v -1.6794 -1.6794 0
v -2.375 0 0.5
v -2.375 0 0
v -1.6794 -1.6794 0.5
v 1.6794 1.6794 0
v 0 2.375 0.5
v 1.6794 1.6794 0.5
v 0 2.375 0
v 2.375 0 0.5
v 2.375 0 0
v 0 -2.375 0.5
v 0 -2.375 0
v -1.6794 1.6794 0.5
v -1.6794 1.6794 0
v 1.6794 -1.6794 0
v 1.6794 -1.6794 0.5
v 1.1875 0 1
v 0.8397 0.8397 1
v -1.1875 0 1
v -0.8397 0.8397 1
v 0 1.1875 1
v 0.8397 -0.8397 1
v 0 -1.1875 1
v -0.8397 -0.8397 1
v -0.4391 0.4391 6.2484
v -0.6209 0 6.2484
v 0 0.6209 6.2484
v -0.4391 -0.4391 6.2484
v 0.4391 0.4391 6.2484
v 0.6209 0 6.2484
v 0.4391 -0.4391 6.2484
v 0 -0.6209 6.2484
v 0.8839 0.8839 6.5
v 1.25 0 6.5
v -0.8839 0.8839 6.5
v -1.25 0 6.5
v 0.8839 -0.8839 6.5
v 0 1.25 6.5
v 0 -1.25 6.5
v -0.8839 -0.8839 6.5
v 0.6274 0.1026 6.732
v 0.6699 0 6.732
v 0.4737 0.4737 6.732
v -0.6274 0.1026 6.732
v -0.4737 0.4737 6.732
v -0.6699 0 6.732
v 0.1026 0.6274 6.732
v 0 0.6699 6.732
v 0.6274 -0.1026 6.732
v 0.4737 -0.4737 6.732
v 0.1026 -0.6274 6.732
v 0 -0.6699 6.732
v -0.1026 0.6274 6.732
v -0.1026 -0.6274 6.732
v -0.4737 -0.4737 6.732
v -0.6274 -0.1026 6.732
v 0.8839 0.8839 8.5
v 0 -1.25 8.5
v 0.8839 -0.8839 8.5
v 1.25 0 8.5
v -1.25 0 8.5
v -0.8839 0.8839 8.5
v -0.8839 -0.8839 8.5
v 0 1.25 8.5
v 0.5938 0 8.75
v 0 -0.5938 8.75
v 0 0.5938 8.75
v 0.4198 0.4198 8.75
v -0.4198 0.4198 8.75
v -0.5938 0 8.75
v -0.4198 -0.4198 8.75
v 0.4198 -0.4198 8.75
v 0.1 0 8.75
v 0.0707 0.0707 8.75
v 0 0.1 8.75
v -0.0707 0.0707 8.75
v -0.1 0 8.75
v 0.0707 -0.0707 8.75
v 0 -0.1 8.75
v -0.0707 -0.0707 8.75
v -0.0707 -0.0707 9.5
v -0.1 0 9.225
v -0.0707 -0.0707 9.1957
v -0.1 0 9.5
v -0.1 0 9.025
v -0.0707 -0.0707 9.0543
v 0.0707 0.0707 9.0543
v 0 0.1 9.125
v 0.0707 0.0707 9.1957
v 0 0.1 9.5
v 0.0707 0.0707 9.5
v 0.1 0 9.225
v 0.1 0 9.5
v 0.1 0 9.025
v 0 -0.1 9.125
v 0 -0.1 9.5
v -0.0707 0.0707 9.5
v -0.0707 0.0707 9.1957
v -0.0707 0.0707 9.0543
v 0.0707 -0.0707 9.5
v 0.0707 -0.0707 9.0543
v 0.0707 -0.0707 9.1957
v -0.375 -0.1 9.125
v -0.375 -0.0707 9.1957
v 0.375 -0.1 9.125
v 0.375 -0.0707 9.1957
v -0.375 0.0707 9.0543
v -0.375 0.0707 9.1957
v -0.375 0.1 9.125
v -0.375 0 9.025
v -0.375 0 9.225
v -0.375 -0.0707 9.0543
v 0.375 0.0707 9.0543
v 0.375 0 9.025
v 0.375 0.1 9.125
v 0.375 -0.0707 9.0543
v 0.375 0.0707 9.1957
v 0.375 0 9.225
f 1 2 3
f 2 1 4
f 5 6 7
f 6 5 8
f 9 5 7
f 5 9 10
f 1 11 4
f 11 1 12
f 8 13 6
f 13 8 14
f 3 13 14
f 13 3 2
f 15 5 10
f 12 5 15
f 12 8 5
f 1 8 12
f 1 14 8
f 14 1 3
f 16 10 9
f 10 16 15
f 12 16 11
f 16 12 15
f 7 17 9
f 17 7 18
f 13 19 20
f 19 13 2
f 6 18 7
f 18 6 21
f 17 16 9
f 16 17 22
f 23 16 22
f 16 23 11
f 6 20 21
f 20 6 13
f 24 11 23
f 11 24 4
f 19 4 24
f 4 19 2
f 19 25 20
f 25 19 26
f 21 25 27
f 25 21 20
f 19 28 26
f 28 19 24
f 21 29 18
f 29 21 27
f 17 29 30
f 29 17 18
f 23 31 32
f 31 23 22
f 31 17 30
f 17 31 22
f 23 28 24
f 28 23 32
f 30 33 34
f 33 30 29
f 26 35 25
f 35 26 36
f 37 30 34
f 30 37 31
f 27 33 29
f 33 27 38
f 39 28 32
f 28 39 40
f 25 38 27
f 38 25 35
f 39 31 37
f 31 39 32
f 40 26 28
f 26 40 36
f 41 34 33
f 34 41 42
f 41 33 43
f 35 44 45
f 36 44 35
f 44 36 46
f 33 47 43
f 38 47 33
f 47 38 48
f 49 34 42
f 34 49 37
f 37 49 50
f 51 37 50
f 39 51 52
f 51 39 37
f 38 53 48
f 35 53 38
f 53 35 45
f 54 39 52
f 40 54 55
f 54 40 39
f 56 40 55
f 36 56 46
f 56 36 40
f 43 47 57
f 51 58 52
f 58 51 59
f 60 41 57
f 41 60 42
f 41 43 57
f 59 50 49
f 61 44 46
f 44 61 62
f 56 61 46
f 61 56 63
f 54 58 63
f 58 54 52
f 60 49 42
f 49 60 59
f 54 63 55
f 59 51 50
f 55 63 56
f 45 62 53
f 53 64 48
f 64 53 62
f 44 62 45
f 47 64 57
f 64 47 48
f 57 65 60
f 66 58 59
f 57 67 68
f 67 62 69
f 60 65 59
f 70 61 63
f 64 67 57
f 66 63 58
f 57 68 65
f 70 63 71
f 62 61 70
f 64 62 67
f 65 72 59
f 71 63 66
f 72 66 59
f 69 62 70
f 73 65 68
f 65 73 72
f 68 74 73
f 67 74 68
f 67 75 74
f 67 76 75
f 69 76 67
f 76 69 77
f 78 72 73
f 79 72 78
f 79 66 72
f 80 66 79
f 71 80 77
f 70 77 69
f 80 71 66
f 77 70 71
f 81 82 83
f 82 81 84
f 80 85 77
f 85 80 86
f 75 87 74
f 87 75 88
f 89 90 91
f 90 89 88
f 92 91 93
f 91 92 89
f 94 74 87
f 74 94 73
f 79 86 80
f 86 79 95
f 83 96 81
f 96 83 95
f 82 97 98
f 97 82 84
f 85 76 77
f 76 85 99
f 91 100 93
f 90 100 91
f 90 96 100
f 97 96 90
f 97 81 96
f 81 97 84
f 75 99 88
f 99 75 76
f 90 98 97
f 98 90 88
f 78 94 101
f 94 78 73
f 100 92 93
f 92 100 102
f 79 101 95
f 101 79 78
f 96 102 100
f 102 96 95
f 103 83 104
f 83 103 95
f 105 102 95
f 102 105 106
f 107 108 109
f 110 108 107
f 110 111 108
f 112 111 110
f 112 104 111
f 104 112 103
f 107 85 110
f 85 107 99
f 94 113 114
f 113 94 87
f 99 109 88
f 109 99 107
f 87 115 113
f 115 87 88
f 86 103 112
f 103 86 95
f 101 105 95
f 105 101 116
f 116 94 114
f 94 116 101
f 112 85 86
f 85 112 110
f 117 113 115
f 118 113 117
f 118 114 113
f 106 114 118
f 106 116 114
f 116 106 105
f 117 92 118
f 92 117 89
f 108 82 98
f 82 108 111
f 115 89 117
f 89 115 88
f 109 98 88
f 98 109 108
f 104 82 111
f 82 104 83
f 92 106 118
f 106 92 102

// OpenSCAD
// file: ../lib/bezier.scad
/*
This file is used in models found in this repository.
Copyright (C) 2024 Christian Hodgden

This program is free software: you can redistribute it and/or modify it under the terms of the GNU Lesser General Public License as published by the Free Software Foundation, either version 3 of the License, or (at your option) any later version.

This program is distributed in the hope that it will be useful, but WITHOUT ANY WARRANTY; without even the implied warranty of MERCHANTABILITY or FITNESS FOR A PARTICULAR PURPOSE. See the GNU General Public License for more details.

You should have received a copy of the GNU Lesser General Public License along with this program. If not, see <https://www.gnu.org/licenses/>.
*/

function de_casteljau(points, t) = 
	len(points) == 1 ?
	points[0] : 
	de_casteljau(
		[for (i = [0:len(points)-2]) (1 - t) * points[i] + t * points[i + 1]], 
		t
	) ;

function bezier_curve(points, $fn=$fn) = 
	[for (i = [0:$fn]) de_casteljau(points, i / $fn)] ;
// main file
// FIDE Standards have some flexibility
// https://www.fide.com/FIDE/handbook/Standards_of_Chess_Equipment_and_tournament_venue.pdf
// FIDE Handbook C.02.2.2 Height,weight,proportions
// 	- King – 9.5 cm, 
// 	- Queen – 8.5 cm, 
// 	- Bishop – 7 cm, 
// 	- Knight – 6 cm, 
// 	- Rook – 5.5 cm and 
// 	- Pawn – 5 cm. 
// 	- The diameter of the piece's base should measure 40- 50% of its height.
// 	- These dimensions may differ up to 10% from the above recommendation,
// 		- but the order (e.g. King is higher than Queen etc.) must be kept.
// We are going to transgress C.02.2.3
// FIDE Handbook C.02.3.2 Size of the square and the board
// 	- The side of the square should measure 5 to 6 cm. 
// 	- Referring to 2.2 the side of a square should be at least twice the diameter of a pawn’s base (it means four paws on one square).

use <../lib/bezier.scad>;

$fn = 8;
total_height = 9.5;
base_diameter = total_height / 2;
base_radius = base_diameter / 2;
base_height = 1;
stem_radius = base_radius / 4;
stem_base_radius = base_radius / 2;
head_radius = 1.25;
head_height = 2;
crown_height = 1;
cross_crown_ratio = 0.75;
cross_height = crown_height * cross_crown_ratio;
cap_height = crown_height - cross_height;
cap_radius = head_radius * 0.25;
cross_thickness = 0.1;
stem_height = total_height - base_height - head_height - crown_height;

// collar_check enables collar
collar_check = 1;
collar_radius = head_radius * collar_check;
collar_height = 1 * collar_check;

// Base
cylinder(base_height/2, base_radius, base_radius);
translate([0, 0, base_height/2]) 
	cylinder(base_height, base_radius, 0);

// Stem
translate([0, 0, base_height])
	cylinder(stem_height, stem_base_radius, stem_radius);

// Collar
translate([0, 0, stem_height + base_height - (collar_height/2)])
	cylinder(collar_height/2, 0, collar_radius);
translate([0, 0, stem_height + base_height])
	cylinder(collar_height/2, collar_radius, 0);

// Head
translate([0, 0, total_height - head_height - crown_height])
	cylinder(head_height, stem_radius, head_radius);

// Cap
translate([0, 0, total_height - crown_height])
	cylinder(cap_height, head_radius, stem_radius);

// Cross
translate([0, 0, total_height - cross_height])
	cylinder(cross_height, cross_thickness, cross_thickness);
translate([-cross_height/2, 0, total_height - (cross_height/2)])
	rotate([0, 90, 0])
		cylinder(cross_height, cross_thickness, cross_thickness);
